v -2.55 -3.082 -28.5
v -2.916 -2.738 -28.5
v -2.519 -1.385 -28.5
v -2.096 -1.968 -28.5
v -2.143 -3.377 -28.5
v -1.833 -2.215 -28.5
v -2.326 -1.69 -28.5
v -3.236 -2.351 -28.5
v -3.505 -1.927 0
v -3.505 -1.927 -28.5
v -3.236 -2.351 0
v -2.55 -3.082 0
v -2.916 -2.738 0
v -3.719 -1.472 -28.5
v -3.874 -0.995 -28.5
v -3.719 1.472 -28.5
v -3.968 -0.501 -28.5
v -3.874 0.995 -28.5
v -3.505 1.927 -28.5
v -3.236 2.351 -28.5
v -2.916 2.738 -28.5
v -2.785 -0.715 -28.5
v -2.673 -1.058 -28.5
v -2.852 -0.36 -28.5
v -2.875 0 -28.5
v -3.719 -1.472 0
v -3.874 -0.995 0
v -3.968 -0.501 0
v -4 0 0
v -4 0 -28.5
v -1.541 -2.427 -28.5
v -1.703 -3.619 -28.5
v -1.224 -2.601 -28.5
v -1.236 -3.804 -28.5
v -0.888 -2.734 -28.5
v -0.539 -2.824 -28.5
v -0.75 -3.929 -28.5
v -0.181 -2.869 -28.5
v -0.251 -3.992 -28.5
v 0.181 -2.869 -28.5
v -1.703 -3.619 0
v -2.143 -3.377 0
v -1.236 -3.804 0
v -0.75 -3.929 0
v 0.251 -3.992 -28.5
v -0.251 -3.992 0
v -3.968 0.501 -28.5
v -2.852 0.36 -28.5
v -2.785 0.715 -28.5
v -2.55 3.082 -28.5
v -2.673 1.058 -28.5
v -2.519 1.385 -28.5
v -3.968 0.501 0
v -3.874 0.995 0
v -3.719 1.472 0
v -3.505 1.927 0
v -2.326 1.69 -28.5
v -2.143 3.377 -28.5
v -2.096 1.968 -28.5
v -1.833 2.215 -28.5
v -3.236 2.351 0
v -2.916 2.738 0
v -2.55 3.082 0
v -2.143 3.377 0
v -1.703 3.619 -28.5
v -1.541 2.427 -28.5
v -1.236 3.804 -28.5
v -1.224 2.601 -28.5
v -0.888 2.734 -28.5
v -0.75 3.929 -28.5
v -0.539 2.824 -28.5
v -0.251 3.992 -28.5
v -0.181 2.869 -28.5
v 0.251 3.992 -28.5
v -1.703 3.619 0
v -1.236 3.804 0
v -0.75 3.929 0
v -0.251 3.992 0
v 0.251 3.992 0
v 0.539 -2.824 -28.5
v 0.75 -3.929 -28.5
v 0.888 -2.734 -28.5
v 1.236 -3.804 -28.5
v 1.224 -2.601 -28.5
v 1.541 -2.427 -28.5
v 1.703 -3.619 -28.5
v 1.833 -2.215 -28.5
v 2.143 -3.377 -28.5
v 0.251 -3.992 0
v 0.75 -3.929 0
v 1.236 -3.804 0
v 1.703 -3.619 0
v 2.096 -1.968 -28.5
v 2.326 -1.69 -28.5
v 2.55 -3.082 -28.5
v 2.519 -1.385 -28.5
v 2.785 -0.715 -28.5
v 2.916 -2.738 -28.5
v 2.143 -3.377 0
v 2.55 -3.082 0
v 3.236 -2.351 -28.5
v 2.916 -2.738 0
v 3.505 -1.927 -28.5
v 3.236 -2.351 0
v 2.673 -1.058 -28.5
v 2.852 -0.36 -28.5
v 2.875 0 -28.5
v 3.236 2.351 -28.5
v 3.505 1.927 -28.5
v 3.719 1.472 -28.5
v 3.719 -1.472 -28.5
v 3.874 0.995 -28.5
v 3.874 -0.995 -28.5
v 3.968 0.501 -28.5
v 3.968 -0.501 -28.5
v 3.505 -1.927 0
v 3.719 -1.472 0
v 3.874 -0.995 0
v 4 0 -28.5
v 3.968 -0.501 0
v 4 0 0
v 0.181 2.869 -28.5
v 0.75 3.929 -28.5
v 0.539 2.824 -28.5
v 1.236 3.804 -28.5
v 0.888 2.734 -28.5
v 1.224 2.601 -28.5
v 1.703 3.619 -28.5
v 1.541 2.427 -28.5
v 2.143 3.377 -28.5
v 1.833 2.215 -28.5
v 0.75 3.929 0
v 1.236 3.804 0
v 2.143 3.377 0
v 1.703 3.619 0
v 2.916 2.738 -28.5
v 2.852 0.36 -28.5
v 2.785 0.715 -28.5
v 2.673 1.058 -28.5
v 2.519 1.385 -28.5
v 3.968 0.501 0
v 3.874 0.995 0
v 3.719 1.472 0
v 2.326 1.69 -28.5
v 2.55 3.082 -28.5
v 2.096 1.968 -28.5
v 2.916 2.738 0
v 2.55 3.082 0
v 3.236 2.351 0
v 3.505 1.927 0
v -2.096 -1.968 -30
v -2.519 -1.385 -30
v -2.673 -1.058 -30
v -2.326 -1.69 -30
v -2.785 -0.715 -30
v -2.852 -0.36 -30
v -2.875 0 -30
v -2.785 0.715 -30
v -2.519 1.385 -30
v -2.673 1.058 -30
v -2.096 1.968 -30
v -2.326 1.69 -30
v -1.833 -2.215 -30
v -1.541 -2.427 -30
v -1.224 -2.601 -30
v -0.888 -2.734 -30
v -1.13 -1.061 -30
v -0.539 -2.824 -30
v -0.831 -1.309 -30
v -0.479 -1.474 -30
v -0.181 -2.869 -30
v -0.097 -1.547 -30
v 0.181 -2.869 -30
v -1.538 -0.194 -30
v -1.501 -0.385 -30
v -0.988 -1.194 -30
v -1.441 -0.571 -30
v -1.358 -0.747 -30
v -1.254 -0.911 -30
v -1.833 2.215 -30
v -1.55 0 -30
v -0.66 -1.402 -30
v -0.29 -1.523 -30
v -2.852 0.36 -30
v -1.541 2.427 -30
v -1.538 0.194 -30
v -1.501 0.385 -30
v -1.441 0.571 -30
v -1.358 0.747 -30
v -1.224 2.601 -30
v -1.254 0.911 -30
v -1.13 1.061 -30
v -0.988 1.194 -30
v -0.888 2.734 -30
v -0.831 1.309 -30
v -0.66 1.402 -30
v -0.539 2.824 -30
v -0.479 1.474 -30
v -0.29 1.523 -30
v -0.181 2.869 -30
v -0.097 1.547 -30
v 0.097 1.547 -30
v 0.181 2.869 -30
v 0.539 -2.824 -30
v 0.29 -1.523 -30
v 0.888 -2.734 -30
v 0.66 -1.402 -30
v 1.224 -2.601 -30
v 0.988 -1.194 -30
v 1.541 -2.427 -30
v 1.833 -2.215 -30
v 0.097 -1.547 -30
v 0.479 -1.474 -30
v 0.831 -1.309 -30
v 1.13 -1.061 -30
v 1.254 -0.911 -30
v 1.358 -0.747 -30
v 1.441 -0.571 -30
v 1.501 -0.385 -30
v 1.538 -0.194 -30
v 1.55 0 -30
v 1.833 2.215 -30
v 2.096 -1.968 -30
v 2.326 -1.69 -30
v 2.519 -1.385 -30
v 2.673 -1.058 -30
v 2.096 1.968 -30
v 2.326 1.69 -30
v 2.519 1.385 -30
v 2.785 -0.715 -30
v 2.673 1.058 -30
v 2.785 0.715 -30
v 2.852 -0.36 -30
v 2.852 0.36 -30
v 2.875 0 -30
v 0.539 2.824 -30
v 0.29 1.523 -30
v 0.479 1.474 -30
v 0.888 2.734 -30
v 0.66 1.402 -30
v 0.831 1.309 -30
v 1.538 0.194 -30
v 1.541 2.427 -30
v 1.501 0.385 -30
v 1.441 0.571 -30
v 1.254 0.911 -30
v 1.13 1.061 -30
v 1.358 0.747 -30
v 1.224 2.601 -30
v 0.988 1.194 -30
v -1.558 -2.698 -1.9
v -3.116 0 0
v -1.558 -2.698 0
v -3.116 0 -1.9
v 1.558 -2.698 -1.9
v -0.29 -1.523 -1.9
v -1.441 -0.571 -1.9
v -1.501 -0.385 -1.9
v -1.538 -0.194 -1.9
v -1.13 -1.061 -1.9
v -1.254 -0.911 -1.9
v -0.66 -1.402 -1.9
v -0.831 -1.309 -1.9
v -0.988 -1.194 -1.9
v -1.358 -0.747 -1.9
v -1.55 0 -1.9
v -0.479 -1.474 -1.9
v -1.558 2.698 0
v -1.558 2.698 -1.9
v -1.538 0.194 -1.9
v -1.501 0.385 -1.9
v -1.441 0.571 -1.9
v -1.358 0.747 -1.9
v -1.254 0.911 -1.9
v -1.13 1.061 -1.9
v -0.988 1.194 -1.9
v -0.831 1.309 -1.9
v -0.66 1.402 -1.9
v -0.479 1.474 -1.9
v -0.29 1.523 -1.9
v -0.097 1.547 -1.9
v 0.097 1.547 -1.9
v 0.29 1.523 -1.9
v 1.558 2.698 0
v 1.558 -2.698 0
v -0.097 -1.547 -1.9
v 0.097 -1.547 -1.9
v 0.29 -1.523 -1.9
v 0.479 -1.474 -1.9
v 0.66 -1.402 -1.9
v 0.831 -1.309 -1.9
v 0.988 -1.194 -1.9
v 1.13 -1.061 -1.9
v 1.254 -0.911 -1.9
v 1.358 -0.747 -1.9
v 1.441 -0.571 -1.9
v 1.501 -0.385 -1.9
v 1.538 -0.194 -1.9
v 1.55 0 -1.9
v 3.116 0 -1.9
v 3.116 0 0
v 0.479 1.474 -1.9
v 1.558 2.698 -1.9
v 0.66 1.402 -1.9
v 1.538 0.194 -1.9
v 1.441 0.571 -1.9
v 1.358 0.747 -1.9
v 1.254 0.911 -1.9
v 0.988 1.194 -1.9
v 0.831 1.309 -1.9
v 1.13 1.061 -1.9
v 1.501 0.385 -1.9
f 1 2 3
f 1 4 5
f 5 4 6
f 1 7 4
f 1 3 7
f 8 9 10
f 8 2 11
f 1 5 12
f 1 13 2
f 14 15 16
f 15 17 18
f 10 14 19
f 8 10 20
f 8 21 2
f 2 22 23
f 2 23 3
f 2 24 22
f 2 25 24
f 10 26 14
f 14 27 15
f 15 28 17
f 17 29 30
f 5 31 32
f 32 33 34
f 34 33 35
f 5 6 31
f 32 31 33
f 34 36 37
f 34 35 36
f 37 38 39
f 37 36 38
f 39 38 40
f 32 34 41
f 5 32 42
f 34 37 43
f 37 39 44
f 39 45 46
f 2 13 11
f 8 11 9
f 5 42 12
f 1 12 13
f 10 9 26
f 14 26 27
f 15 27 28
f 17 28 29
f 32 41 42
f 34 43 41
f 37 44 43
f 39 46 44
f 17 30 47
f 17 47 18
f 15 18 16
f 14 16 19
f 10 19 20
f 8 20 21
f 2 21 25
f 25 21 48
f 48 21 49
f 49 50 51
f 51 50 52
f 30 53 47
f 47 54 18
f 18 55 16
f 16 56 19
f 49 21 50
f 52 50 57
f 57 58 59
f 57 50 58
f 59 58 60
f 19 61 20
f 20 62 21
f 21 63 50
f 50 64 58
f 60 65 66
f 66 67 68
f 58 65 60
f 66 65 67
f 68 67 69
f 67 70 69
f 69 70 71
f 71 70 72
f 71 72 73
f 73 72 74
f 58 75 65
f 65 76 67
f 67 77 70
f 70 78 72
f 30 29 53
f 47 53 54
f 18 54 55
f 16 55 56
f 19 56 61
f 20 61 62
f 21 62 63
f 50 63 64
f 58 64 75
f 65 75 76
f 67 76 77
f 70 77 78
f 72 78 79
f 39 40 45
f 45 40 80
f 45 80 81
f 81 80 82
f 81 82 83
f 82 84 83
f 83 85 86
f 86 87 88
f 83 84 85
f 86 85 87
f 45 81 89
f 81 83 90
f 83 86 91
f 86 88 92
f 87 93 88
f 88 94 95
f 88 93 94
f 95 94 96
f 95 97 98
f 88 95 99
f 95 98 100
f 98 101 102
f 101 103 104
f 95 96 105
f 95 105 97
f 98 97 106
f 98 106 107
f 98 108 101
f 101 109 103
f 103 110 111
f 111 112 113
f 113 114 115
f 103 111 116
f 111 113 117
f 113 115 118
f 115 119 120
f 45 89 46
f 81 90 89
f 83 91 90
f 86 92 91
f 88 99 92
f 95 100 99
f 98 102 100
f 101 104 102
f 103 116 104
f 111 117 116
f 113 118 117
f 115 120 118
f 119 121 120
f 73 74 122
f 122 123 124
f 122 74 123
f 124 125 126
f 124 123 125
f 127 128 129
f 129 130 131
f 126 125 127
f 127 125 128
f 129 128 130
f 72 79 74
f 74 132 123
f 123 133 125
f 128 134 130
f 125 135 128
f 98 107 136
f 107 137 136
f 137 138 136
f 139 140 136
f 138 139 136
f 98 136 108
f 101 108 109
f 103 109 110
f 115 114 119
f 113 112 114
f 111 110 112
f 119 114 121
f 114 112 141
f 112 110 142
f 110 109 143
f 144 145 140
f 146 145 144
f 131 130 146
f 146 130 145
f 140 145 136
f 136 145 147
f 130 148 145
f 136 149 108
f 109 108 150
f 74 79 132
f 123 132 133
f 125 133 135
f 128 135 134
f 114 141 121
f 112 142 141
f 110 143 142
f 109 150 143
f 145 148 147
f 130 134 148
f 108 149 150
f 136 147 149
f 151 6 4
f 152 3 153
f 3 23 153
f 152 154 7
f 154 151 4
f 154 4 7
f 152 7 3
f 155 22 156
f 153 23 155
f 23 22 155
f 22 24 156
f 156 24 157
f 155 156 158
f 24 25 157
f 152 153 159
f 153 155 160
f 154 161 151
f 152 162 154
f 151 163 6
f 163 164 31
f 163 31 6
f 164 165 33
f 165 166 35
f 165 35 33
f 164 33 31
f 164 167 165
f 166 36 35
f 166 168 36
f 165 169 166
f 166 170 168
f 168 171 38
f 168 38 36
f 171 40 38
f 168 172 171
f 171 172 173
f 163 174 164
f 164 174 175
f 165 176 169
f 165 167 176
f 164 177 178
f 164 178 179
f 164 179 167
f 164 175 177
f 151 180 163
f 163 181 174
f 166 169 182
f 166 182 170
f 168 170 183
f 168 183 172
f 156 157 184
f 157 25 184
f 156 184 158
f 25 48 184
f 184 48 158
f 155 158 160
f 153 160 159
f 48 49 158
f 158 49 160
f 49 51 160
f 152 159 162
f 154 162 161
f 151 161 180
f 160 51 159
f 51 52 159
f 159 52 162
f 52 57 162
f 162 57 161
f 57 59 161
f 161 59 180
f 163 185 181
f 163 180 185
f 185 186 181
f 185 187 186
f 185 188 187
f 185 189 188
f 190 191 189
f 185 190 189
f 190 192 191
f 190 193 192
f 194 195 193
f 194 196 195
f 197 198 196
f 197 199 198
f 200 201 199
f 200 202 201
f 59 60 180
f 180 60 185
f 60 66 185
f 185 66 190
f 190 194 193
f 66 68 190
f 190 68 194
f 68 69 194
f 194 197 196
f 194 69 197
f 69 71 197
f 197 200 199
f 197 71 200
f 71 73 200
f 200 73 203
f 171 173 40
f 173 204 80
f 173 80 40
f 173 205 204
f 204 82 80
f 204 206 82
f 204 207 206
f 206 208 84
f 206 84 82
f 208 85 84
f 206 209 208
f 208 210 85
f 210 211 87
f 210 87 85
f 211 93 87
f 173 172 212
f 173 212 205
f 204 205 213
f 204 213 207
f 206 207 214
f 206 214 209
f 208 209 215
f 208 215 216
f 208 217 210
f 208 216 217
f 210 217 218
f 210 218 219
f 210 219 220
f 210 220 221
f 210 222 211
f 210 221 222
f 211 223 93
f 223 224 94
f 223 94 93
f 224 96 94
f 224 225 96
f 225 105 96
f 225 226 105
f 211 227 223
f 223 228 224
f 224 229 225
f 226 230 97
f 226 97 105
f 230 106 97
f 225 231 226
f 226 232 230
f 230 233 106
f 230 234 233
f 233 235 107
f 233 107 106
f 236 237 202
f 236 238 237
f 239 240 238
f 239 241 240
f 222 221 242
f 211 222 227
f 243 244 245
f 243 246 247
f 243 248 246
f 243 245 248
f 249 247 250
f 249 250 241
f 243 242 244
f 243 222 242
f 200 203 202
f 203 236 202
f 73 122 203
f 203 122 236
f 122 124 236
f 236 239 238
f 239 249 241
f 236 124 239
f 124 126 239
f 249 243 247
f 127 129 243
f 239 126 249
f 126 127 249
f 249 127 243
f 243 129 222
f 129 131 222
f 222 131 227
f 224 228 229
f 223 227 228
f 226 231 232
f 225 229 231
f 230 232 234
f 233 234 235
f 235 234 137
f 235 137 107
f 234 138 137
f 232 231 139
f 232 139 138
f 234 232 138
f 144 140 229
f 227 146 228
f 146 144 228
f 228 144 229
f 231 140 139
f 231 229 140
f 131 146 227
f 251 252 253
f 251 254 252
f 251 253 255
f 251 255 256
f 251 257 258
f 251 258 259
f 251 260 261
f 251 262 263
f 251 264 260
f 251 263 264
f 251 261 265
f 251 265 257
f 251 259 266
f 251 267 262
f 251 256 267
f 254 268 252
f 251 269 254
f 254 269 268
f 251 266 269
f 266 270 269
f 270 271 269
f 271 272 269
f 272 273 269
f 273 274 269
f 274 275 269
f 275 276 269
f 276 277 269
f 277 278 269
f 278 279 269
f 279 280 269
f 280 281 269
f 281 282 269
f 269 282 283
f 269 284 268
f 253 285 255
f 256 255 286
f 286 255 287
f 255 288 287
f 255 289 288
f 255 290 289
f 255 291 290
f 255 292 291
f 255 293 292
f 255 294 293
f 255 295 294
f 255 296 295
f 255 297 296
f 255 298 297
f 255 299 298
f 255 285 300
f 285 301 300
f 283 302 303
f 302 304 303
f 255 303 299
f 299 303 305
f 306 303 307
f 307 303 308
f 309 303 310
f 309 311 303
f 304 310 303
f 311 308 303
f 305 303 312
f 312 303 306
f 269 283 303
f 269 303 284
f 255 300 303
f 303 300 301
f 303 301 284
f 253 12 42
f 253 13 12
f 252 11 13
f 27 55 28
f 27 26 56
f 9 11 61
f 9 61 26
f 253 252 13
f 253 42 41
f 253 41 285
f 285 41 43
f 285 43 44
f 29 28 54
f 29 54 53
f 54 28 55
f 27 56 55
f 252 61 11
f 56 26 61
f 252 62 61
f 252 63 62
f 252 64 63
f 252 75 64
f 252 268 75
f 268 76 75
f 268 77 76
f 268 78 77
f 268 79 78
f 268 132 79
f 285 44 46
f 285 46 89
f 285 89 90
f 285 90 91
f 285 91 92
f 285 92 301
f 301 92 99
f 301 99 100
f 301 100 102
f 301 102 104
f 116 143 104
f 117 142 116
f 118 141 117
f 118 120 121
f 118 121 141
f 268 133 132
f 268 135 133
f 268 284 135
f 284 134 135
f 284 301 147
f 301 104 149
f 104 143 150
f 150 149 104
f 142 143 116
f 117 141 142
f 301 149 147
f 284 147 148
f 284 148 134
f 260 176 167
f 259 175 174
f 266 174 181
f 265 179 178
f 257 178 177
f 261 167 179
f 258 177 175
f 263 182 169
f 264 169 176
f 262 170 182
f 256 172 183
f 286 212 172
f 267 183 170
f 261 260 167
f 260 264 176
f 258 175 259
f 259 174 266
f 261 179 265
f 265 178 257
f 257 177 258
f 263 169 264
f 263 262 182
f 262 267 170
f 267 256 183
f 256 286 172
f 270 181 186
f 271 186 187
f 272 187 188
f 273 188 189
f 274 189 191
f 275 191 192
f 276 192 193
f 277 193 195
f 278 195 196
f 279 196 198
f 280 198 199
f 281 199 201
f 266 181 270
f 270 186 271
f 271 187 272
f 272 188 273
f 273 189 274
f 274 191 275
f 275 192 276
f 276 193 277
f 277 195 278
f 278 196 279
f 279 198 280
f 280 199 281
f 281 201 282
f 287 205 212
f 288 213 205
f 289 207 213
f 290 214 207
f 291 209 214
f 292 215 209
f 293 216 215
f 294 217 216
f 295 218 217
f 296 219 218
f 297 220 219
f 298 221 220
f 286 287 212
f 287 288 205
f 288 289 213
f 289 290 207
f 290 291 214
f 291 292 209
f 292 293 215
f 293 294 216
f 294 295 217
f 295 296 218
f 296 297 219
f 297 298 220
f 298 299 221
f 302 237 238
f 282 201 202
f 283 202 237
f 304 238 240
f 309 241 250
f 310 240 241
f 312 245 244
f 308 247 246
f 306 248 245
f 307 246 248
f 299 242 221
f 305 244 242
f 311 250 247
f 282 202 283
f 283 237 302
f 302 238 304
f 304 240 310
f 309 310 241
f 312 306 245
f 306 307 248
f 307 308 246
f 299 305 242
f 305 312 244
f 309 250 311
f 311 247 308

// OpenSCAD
$fn = 50;

difference() {
	union() {
		translate(v = [0, 0, -28.5]) {
			cylinder(h = 31.5, r = 4.0);
		}
		#translate(v = [0, 0, -30.0]) {
			cylinder(h = 30, r = 2.875);
		}
	}
	union() {
		translate(v = [0, 0, 0]) {
			rotate(a = [0, 0, 0]) {
				difference() {
					union() {
						translate(v = [0, 0, -1.9]) {
							linear_extrude(height = 1.9) {
								polygon(points = [[3.1158, 0.0], [1.5579000000000005, 2.698361953111554], [-1.5578999999999994, 2.6983619531115544], [-3.1158, 3.815754496783323e-16], [-1.5579000000000014, -2.6983619531115535], [1.557899999999998, -2.6983619531115552]]);
							}
						}
					}
					union();
				}
			}
		}
		#cylinder(h = 3, r = 5.0);
		#translate(v = [0, 0, -100.0]) {
			cylinder(h = 200, r = 1.55);
		}
	}
}
